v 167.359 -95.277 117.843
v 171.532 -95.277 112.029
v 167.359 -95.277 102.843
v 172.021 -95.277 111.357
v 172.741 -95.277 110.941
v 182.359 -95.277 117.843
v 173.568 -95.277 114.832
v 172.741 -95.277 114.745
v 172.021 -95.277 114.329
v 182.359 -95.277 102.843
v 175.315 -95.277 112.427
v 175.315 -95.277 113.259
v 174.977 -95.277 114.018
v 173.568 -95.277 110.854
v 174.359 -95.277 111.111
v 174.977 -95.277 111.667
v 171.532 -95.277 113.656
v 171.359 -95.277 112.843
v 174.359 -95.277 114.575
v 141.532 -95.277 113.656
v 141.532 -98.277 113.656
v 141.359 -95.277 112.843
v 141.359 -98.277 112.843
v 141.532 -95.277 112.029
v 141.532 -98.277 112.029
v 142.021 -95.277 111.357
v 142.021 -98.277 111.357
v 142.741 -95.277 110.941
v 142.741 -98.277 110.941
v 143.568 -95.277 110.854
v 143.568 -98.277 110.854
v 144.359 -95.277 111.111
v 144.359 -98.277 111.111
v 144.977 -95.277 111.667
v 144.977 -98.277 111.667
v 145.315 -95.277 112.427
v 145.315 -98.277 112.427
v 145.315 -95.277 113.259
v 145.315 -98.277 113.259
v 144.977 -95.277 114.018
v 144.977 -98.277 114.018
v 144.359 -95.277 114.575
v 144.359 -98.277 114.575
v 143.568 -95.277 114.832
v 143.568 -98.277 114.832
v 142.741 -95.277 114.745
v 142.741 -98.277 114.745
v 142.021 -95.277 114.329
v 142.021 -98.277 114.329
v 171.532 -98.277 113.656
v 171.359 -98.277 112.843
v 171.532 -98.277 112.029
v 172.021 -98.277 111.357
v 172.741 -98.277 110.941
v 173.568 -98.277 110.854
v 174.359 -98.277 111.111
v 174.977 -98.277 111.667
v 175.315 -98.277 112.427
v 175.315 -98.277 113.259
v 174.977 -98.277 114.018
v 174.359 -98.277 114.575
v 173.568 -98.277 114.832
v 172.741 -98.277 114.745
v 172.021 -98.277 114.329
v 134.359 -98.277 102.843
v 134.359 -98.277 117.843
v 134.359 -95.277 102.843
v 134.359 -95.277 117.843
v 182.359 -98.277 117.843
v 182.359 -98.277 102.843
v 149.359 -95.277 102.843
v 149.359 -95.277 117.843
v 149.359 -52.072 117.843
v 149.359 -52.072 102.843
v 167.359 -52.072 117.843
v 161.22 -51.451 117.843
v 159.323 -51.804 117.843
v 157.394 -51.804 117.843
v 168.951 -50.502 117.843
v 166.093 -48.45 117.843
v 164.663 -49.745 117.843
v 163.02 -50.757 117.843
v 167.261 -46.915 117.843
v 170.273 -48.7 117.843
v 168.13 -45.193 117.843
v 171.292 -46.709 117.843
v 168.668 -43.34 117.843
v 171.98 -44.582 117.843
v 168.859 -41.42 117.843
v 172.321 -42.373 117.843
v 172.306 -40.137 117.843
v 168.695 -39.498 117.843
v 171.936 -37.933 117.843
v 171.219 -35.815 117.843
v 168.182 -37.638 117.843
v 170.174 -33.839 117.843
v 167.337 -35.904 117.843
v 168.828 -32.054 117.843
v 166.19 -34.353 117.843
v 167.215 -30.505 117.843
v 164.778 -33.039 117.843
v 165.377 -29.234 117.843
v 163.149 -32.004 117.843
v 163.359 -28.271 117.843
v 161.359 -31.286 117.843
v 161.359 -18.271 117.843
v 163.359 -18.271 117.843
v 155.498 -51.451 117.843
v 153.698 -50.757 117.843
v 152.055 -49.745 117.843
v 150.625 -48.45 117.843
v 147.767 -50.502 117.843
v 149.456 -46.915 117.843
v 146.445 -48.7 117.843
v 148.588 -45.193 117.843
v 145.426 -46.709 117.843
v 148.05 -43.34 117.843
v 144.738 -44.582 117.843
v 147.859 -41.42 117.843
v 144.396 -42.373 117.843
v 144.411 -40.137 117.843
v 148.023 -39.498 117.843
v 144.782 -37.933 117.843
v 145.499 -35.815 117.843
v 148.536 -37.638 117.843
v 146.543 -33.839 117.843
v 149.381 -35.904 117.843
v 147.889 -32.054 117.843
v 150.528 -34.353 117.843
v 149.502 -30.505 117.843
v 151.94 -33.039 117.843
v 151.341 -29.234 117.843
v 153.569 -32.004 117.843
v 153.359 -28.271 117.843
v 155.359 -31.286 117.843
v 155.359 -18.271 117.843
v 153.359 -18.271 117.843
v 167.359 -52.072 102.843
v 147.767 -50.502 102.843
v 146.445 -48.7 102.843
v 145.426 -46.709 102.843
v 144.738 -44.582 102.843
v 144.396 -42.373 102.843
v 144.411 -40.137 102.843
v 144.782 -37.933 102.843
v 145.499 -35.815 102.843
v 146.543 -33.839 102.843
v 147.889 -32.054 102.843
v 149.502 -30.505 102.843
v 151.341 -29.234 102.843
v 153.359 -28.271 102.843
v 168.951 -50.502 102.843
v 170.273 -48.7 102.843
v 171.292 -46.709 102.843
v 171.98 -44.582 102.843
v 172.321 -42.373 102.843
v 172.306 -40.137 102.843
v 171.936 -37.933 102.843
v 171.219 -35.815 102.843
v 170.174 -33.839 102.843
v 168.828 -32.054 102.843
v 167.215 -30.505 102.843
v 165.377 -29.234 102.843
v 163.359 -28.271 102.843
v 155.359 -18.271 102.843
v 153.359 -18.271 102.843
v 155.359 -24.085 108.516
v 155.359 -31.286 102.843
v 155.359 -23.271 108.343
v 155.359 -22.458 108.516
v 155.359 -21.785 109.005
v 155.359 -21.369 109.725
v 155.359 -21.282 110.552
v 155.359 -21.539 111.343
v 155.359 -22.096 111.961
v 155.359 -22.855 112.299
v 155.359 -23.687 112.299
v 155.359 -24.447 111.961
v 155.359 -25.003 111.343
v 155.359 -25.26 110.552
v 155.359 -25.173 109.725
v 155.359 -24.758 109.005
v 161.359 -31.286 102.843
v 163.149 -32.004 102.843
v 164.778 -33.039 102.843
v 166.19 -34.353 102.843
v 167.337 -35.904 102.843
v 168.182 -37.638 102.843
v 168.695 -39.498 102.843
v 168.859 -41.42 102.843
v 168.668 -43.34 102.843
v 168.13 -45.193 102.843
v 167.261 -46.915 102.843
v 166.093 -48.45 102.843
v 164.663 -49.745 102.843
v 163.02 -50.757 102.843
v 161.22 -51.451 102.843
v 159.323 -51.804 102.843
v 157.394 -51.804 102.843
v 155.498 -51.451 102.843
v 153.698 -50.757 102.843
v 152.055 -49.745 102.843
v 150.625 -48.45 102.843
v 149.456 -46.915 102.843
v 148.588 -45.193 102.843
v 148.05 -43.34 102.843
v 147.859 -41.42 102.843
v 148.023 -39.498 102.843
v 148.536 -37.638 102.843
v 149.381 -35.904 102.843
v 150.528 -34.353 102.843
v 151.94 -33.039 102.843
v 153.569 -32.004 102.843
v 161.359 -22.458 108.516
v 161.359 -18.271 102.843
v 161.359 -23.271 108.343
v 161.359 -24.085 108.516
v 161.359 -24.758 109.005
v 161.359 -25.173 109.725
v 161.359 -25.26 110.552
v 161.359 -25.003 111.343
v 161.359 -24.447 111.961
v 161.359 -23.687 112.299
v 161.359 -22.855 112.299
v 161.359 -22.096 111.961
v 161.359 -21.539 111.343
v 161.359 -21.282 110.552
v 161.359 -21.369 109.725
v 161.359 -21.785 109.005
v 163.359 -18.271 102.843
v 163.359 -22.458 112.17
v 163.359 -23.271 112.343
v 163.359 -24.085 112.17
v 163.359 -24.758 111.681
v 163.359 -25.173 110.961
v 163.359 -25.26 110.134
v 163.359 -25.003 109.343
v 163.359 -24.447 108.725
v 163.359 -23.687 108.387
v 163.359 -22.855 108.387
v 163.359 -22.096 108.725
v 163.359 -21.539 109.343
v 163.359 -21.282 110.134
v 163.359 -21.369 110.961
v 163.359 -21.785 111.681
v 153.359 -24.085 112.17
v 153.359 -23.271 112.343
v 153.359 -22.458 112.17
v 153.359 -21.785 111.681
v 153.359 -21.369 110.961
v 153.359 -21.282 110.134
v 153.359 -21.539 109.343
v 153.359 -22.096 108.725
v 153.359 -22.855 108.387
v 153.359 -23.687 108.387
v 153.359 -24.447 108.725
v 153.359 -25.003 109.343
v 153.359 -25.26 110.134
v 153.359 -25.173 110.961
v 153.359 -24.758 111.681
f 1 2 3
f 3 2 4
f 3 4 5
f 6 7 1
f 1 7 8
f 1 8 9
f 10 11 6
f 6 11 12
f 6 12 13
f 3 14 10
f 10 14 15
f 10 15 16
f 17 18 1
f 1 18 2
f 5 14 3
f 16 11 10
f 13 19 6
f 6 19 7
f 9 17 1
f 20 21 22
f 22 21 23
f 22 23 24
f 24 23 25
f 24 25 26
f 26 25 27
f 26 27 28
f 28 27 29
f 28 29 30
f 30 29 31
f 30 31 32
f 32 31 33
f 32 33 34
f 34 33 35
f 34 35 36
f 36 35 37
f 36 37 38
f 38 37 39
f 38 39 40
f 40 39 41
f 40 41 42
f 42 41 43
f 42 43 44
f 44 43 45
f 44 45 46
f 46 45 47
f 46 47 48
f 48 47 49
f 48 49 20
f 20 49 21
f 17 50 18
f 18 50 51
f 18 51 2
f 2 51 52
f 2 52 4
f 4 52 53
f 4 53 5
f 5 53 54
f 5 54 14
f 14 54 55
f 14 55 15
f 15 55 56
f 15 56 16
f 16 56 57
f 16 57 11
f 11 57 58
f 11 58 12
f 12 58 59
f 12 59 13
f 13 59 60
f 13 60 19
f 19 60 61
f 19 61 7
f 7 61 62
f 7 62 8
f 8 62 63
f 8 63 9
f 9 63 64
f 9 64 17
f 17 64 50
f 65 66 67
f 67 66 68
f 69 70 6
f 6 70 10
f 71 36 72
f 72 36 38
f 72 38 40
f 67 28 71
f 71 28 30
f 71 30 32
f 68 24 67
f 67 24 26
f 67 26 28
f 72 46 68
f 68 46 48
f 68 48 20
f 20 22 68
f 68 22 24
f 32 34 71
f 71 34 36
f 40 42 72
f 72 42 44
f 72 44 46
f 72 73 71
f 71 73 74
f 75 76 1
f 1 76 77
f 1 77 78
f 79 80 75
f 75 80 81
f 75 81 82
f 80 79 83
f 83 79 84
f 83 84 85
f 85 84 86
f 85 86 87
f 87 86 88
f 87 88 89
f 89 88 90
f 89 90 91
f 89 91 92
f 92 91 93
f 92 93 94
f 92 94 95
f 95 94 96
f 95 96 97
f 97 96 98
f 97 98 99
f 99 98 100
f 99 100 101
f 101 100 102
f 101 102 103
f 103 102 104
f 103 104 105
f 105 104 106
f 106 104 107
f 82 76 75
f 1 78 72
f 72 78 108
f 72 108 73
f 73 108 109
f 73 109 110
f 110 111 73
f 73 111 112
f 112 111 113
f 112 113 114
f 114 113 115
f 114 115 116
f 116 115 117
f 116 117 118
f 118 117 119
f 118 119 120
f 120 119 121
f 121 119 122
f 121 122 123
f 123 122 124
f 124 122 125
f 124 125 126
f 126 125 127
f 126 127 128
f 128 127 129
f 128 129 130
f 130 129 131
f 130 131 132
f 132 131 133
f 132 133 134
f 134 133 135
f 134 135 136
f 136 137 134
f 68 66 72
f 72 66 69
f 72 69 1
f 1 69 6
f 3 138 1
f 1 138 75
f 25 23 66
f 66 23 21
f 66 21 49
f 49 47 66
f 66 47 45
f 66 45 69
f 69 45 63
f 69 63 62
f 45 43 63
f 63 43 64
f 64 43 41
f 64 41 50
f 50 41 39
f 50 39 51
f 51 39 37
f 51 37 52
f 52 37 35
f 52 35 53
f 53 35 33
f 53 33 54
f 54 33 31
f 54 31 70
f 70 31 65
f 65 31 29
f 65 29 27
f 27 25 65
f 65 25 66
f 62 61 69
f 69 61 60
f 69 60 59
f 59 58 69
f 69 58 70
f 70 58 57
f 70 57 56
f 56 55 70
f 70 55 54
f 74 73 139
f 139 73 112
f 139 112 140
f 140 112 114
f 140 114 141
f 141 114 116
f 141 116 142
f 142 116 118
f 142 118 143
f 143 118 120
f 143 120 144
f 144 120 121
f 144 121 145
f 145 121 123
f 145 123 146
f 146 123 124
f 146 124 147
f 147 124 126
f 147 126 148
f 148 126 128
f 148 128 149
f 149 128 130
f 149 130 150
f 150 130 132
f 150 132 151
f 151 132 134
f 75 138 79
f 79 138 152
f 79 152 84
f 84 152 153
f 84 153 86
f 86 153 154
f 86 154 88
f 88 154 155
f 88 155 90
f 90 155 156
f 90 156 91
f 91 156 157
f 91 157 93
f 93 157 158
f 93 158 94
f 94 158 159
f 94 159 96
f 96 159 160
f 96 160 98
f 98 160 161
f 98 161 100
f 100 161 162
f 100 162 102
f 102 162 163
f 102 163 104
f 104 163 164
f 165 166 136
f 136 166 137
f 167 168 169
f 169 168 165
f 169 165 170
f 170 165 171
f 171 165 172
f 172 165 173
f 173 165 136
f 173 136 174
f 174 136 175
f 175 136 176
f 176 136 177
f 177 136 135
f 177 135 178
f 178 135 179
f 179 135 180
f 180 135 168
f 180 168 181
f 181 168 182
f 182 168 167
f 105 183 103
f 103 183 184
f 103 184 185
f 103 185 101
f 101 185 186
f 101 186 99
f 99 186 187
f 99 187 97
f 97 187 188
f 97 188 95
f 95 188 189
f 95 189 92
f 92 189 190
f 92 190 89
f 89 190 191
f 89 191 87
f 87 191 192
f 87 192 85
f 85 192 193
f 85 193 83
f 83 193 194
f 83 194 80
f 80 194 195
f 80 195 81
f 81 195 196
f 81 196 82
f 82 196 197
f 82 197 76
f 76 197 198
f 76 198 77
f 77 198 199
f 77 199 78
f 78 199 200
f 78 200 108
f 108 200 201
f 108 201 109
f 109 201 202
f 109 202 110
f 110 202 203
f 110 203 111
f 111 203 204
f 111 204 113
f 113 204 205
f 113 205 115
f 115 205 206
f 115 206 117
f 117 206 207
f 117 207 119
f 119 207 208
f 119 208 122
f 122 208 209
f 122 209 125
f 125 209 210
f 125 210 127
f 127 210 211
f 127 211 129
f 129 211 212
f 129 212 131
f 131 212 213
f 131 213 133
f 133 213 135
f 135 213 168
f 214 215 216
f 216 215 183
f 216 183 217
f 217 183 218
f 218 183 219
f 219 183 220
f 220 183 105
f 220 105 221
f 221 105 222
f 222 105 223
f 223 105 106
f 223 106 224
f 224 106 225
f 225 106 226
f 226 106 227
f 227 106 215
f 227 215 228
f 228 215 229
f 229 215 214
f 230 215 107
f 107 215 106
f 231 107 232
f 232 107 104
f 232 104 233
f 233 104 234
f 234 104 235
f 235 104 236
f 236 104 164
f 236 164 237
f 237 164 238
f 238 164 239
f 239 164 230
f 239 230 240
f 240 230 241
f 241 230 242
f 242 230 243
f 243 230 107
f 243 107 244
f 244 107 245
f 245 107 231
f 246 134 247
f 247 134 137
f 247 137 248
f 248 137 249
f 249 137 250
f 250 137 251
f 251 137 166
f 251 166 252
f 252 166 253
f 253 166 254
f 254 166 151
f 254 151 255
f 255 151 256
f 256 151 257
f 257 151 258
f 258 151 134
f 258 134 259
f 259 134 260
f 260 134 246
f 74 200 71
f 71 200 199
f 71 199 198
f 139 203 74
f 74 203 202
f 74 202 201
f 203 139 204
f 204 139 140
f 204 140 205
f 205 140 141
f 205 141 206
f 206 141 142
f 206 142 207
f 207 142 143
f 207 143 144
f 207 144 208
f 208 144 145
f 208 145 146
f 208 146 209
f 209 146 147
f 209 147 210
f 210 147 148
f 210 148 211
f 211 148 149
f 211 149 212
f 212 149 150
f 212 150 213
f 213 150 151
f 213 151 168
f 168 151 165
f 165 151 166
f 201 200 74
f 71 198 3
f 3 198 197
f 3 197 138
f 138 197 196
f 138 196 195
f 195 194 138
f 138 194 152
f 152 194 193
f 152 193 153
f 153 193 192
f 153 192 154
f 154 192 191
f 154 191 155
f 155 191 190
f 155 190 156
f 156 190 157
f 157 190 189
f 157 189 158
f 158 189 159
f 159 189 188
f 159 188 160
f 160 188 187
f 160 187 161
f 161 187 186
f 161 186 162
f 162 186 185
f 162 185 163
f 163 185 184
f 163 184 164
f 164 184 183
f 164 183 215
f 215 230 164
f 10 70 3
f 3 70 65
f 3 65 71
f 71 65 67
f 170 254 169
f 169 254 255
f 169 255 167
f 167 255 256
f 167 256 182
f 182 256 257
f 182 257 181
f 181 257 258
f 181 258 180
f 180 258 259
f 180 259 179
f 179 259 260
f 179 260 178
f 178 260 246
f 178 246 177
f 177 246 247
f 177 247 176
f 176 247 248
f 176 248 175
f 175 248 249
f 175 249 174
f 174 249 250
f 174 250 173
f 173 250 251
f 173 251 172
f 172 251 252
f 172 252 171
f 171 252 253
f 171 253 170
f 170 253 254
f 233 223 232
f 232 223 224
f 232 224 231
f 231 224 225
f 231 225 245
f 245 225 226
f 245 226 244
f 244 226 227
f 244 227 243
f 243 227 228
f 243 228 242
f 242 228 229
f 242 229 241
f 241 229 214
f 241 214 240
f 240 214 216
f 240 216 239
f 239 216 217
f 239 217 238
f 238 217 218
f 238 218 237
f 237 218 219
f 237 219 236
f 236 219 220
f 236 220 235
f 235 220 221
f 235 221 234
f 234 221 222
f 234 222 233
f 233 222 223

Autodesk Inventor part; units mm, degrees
ref_plane "YZ Plane" through (0, 0, 0) normal (1, 0, 0) x (0, 1, 0)
ref_plane "Work Plane3" through (158.3589, -41.348, 102.8428) normal (0, 0, -1) x (-1, 0, 0)
sketch "Sketch3" plane through (158.3589, -41.348, 102.8428) normal (0, 0, -1) x (-1, 0, 0)
  circle A0 centre (0, 0) radius 10.5 projected
  arc A1 (-3, 10.0623) -> (3, 10.0623) centre (0, 0) ccw
  line L0 (0, 0) -> (0, 16.5106) construction
  line L1 (5, 13.0767) -> (5, 23.0767)
  line L2 (3, 10.0623) -> (3, 23.0767)
  line L3 (5, 23.0767) -> (3, 23.0767)
  line L4 (-5, 13.0767) -> (-5, 23.0767)
  line L5 (-3, 10.0623) -> (-3, 23.0767)
  line L6 (-5, 23.0767) -> (-3, 23.0767)
  arc A2 (-5, 13.0767) -> (5, 13.0767) centre (0, 0) ccw
  point P0 (158.3589, 41.348)
  dimension "d8" = 0
  dimension "d30" = 10
  dimension "d31" = 2
  dimension "d32" = 3
  dimension "d33" = 14
extrude "Extrusion2" add sketch "Sketch3" against normal blind 15 contours A0 L2 L3 L1 A2 L4 L6 L5
sketch "Sketch5" plane through (158.3589, -41.348, 102.8428) normal (0, 0, -1) x (-1, 0, 0)
  line L0 (-41.6411, -56.9287) -> (358.3589, -56.9287) projected
  arc A0 (-2.5, 13.775) -> (2.5, 13.775) centre (0, 0) ccw projected
  line L1 (0, -14) -> (0, -56.9287) construction
  line L2 (9, -10.7238) -> (9, -56.9287)
  line L3 (-9, -10.7238) -> (-9, -56.9287)
  point P0 (158.3589, 41.348)
  point P1 (-9, -10.7238)
  point P2 (-9, -56.9287)
  dimension "d19" = 9
extrude "Extrusion4" add sketch "Sketch5" against normal blind 15
ref_plane "Work Plane5" through (0, -98.2767, 225.7428) normal (0, 1, 0) x (-1, 0, 0)
sketch "Sketch7" plane through (0, -98.2767, 225.7428) normal (0, 1, 0) x (-1, 0, 0)
  circle A0 centre (-143.3589, -112.9) radius 2 projected
  circle A1 centre (-173.3589, -112.9) radius 2 projected
  line L0 (-134.3589, -107.9) -> (-182.3589, -107.9)
  line L1 (-182.3589, -107.9) -> (-182.3589, -122.9)
  line L2 (-182.3589, -122.9) -> (-134.3589, -122.9)
  line L3 (-134.3589, -122.9) -> (-134.3589, -107.9)
  line L4 (-144.3589, -107.9) -> (-155.8589, -107.9) projected
  point P0 (0, -225.7428)
  point P1 (-149.3589, -107.9)
  dimension "d23" = 48
  dimension "d24" = 15
  dimension "d25" = 9
extrude "Extrusion5" add sketch "Sketch7" along normal blind 3
sketch "Sketch8" plane through (153.3589, -28.2713, 102.8428) normal (-1, 0, 0) x (0, 0, 1)
  line L0 (0, 0) -> (0, 10) projected
  line L1 (0, 10) -> (15, 10) projected
  line L2 (0, 5) -> (15, 5) construction
  line L3 (0, 10) -> (15, 10) projected
  line L4 (7.5, 10) -> (7.5, 0) construction
  circle A0 centre (7.5, 5) radius 2
  point P0 (-102.8428, 28.2713)
  dimension "d34" = 4
extrude "Extrusion6" cut sketch "Sketch8" against normal blind 10
properties part number "base_motor"
